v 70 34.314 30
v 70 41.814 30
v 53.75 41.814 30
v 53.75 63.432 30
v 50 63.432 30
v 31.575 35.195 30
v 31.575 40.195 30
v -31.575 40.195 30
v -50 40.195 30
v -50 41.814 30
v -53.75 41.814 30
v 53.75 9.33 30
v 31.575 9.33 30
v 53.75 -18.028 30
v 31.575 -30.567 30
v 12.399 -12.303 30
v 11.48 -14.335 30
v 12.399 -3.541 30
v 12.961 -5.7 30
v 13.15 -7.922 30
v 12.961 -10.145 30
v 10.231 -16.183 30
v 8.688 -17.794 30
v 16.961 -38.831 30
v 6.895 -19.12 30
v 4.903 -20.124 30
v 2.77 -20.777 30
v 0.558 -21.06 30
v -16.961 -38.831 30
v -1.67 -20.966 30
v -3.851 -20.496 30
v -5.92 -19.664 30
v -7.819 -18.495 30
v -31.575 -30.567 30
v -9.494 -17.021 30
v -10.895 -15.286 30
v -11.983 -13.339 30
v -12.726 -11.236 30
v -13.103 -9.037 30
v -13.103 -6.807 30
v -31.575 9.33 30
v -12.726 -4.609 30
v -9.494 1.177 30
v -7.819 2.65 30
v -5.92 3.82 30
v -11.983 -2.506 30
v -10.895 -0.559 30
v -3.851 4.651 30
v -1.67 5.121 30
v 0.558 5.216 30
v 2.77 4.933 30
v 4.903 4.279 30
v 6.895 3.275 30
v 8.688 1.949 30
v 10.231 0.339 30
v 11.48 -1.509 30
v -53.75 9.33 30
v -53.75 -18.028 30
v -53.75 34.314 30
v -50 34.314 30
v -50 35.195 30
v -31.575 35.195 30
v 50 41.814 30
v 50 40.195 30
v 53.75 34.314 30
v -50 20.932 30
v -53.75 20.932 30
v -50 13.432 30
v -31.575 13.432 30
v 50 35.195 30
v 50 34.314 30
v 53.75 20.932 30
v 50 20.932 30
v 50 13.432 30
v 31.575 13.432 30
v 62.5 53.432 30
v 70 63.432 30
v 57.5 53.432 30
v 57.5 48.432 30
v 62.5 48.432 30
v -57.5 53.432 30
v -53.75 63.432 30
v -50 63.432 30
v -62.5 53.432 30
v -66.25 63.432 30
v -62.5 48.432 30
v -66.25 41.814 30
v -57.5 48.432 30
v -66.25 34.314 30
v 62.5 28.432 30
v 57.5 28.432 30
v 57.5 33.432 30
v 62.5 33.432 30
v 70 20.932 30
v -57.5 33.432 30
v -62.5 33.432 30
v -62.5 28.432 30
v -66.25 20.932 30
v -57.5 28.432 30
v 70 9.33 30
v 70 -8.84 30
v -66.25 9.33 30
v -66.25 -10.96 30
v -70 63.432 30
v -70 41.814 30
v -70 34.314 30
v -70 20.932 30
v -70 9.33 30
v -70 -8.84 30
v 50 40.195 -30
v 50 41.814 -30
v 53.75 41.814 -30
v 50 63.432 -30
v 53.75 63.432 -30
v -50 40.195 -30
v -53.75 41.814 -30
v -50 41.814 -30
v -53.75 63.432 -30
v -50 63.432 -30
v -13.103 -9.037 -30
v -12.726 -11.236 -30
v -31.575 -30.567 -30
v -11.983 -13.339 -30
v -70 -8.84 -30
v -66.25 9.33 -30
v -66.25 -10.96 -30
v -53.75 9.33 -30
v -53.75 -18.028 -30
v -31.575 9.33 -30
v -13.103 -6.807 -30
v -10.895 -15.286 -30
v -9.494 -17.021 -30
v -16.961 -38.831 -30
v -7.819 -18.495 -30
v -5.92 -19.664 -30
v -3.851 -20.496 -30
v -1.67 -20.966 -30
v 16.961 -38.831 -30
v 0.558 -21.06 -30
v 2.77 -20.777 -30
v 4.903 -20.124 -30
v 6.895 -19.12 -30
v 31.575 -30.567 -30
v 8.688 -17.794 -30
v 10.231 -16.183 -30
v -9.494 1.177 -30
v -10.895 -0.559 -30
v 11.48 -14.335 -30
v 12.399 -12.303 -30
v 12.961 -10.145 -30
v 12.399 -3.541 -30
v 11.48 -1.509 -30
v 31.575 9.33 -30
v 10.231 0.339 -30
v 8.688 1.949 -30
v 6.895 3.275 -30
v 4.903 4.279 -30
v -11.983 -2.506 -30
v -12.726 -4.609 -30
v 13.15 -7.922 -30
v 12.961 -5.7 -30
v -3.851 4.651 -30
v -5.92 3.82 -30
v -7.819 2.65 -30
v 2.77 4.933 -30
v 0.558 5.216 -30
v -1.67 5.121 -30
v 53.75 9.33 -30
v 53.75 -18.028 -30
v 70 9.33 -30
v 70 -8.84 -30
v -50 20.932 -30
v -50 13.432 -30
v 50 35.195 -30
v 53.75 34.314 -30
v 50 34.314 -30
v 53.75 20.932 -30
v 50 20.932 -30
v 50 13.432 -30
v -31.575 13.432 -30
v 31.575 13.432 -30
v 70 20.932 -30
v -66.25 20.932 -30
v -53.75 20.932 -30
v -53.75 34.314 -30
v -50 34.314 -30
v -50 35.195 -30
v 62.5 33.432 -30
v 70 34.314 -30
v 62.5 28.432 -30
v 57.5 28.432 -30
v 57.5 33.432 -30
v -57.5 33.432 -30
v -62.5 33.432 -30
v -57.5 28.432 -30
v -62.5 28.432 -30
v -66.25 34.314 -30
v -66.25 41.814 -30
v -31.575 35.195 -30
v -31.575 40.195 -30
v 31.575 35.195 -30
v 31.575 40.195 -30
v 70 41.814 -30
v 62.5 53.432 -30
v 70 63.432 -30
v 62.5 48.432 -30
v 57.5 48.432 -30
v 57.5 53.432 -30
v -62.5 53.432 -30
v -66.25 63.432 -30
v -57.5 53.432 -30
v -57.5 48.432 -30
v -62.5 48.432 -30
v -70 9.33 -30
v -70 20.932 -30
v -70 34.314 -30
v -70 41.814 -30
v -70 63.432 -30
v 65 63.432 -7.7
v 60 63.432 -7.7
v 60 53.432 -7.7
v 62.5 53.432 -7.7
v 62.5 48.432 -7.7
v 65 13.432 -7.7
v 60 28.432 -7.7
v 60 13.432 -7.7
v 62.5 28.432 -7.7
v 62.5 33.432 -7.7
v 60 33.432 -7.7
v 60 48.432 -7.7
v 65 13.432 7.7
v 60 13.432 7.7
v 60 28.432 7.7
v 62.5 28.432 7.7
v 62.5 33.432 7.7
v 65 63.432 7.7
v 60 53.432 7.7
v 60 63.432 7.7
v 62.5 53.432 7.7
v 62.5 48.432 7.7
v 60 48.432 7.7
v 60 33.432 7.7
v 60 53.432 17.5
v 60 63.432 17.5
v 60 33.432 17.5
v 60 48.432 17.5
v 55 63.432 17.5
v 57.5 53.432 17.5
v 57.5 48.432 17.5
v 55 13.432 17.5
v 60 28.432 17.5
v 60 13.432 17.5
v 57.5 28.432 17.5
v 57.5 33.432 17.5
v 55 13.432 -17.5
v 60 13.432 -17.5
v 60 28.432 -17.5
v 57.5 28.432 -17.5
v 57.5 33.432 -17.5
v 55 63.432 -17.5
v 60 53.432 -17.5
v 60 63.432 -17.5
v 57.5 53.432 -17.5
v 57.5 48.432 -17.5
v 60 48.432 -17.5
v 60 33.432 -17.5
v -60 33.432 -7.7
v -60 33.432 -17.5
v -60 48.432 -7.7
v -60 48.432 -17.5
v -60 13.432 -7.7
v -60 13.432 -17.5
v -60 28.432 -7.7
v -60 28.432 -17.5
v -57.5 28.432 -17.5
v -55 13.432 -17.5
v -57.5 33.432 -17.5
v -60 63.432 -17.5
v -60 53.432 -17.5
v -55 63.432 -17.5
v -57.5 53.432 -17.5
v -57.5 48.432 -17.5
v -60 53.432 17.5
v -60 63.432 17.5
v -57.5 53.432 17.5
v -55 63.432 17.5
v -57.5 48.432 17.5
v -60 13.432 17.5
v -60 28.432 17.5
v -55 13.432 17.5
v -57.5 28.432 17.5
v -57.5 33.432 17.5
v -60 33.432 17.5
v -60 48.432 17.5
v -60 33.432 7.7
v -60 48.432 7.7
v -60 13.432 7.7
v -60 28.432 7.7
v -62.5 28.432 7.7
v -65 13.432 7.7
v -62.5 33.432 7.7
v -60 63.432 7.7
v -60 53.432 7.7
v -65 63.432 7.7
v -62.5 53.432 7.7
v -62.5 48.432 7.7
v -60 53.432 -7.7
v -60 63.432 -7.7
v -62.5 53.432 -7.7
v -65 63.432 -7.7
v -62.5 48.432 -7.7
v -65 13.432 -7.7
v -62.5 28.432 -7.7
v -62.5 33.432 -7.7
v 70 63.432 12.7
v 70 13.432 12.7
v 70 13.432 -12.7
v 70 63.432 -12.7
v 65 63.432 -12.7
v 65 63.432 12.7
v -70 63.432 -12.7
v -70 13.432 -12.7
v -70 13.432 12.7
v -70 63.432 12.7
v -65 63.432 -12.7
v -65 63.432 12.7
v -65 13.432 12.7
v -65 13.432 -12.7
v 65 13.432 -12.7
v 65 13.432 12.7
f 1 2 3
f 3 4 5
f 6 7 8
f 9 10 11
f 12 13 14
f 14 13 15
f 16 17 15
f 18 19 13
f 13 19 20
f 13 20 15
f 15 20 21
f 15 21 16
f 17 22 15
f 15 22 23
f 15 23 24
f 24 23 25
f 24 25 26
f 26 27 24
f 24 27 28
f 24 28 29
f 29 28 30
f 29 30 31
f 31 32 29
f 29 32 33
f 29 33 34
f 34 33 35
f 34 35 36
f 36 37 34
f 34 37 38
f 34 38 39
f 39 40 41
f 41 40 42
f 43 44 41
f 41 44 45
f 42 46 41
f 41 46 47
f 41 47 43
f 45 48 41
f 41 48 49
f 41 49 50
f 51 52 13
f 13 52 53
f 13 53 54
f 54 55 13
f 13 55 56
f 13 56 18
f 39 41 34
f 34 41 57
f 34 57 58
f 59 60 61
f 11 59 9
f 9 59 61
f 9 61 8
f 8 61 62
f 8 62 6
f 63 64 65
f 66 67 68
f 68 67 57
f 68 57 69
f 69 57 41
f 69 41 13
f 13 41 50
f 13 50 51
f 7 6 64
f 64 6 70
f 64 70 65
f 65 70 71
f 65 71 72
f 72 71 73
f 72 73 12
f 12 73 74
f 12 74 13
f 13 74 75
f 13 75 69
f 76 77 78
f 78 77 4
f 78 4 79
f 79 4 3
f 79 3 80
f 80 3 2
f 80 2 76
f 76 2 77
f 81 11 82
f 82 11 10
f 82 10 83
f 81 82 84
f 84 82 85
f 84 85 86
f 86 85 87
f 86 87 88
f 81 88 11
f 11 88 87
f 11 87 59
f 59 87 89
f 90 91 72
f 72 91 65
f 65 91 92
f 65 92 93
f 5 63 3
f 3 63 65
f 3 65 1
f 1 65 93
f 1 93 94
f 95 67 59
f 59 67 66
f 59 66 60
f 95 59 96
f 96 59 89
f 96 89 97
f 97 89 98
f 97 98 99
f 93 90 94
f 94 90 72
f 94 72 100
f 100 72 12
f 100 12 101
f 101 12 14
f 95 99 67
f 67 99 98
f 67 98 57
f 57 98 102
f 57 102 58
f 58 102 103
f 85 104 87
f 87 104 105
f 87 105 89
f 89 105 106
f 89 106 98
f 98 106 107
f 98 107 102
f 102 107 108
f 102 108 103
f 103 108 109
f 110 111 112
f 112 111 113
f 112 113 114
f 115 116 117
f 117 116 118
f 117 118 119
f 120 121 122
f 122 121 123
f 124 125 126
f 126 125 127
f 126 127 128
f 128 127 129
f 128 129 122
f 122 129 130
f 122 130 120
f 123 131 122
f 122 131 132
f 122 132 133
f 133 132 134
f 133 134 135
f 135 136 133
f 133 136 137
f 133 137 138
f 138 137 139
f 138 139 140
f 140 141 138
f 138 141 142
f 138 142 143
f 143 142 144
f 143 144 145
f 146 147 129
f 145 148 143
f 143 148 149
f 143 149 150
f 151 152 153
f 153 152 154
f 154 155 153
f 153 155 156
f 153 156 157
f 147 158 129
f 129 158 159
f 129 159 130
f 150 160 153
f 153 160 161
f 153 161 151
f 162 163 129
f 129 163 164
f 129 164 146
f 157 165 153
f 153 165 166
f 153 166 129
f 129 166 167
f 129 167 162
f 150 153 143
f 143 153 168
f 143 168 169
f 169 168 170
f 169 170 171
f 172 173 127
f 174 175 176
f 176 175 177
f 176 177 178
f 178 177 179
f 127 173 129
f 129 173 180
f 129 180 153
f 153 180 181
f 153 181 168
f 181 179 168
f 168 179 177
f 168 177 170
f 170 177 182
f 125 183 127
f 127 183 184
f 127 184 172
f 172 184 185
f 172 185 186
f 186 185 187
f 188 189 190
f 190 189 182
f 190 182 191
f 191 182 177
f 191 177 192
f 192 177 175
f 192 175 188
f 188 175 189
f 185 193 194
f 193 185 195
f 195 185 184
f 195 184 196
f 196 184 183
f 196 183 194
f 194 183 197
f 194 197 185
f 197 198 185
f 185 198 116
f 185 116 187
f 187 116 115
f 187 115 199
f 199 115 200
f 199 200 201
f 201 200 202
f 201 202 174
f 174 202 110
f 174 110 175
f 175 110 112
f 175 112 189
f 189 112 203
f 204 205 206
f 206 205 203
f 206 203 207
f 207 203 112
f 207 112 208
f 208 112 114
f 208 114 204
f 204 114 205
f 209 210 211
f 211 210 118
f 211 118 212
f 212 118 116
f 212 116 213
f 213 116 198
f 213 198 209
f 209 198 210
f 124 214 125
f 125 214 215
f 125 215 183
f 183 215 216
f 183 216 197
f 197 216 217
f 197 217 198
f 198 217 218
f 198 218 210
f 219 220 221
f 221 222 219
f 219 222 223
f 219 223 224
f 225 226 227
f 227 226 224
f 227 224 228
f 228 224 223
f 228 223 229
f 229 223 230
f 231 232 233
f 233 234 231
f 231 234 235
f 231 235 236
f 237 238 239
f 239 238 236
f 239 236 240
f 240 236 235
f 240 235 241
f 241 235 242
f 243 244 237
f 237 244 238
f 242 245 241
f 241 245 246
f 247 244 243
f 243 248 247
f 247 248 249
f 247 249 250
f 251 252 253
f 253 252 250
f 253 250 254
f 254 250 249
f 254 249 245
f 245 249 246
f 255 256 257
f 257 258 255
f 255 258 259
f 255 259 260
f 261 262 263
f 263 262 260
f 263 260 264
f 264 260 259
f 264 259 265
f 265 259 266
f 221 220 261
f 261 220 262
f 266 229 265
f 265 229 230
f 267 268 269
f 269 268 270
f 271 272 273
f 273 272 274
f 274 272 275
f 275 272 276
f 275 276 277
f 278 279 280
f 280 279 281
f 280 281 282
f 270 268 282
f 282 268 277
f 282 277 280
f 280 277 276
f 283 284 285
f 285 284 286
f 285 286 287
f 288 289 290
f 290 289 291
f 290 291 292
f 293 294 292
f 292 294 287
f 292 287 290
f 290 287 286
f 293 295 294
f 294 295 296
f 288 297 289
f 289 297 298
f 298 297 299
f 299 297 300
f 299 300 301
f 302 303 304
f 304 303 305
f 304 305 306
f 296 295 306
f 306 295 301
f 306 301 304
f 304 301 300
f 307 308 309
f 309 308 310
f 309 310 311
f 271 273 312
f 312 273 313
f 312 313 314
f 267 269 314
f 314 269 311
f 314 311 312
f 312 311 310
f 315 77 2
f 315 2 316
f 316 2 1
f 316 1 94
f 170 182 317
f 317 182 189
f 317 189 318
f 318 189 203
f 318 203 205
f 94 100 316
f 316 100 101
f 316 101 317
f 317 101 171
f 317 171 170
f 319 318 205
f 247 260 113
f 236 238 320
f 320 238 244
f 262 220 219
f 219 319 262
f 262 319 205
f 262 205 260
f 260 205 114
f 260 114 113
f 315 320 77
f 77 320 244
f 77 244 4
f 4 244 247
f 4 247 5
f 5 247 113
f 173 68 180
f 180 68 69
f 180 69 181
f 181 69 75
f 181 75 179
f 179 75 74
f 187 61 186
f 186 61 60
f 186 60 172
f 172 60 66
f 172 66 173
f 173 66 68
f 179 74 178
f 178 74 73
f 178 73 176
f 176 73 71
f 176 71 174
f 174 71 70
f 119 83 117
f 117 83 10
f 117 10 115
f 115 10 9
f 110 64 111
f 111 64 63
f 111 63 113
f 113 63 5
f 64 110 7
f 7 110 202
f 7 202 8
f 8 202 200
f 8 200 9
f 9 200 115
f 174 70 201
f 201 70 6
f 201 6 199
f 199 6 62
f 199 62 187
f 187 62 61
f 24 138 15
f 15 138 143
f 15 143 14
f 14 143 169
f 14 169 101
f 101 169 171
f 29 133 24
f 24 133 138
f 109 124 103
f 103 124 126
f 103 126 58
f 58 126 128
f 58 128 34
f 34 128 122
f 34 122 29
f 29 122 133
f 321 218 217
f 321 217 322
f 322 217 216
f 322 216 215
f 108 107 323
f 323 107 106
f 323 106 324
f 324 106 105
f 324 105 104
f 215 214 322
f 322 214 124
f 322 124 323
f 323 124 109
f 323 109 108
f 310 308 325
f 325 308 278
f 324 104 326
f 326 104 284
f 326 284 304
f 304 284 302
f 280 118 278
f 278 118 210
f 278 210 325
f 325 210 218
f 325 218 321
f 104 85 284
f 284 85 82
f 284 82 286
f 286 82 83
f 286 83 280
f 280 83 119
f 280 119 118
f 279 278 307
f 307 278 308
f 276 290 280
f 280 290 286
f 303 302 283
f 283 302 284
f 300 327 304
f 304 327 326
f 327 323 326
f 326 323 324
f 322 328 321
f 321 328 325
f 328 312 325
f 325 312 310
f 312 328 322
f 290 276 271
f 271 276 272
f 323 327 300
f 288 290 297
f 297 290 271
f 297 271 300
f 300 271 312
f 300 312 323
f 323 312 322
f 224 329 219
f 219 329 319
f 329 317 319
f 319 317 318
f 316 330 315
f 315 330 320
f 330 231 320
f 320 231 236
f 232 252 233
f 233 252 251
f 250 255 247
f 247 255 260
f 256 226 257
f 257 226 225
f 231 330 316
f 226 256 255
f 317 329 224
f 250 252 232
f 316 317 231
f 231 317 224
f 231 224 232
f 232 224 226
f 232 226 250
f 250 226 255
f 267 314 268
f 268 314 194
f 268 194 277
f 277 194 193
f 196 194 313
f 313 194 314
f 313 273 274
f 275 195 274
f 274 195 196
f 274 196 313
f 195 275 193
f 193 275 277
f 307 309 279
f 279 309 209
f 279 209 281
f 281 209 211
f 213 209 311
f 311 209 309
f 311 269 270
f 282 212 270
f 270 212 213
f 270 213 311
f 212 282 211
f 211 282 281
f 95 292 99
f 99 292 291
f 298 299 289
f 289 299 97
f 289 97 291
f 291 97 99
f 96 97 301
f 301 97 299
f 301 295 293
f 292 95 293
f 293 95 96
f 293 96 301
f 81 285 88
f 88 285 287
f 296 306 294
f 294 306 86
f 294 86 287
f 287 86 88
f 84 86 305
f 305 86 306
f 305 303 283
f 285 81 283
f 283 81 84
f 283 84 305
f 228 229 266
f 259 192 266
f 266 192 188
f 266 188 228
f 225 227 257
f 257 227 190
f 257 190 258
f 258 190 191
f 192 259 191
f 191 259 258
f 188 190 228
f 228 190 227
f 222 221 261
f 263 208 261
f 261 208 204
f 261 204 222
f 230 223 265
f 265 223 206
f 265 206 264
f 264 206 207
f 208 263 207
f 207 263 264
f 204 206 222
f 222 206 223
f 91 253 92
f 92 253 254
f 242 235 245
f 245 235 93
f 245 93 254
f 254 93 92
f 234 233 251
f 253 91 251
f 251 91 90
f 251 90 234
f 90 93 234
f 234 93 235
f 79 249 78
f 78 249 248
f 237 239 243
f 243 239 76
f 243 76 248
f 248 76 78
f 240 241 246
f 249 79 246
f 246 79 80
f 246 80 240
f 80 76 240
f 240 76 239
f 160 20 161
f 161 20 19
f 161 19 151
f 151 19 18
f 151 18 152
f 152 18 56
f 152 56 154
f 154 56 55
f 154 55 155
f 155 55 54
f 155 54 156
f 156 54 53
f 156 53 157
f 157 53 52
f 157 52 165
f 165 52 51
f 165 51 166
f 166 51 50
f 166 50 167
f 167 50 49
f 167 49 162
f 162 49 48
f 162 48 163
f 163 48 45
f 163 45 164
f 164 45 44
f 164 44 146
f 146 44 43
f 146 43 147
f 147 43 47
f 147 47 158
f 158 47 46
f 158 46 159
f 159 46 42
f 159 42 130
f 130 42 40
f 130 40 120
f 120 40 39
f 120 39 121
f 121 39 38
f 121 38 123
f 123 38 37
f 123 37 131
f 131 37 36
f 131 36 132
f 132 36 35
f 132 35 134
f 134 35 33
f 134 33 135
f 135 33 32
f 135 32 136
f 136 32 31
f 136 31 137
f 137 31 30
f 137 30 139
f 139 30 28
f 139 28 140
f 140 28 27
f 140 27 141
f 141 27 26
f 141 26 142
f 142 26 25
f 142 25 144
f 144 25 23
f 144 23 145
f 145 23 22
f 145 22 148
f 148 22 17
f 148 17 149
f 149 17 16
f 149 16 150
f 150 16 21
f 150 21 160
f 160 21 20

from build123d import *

# Parameters (mm, degrees)
BOSS_EXTRUDE2_DEPTH            = 30
BOSS_EXTRUDE2_DEPTH_BACK       = 30
EXTRUDE_THIN2_START            = -25
EXTRUDE_THIN2_DEPTH            = 50
SKETCH2_W                      = 60
SKETCH2_H                      = 5
BOSS_EXTRUDE3_DEPTH            = 100
BOSS_EXTRUDE4_DEPTH            = 30
BOSS_EXTRUDE4_DEPTH_BACK       = 30
CUT_EXTRUDE2_REACH             = 143.361
SKETCH4_W                      = 60
SKETCH4_H                      = 5
CUT_EXTRUDE2_DIRECTION_2_REACH = 143.361
BOSS_EXTRUDE5_DEPTH            = 30
BOSS_EXTRUDE5_DEPTH_BACK       = 30
DRONE_ARM_FIT_CUT_DEPTH        = 50
CUT_EXTRUDE3_START             = -60
SKETCH8_W                      = 5
SKETCH8_H                      = 5
CUT_EXTRUDE3_DEPTH             = 60
SKETCH10_R                     = 13.15
CUT_EXTRUDE5_DEPTH             = 60


# Read off the part's stored shape, not the designer's step: Extrude-Thin2
with BuildPart() as part:
    # Sketch1 → Boss-Extrude2 (new, two sides: drawn at the far end of the back side and taken through both)
    with BuildSketch(Plane.XY.offset(-BOSS_EXTRUDE2_DEPTH_BACK)):
        Polygon((-13.01396445, -23.830717844), (13.01396445, -23.830717844), (55, -0.089432632), (55, 13.432214294), (-55, 13.432214294), (-55, -0.089432632), align=None)
    extrude(amount=BOSS_EXTRUDE2_DEPTH + BOSS_EXTRUDE2_DEPTH_BACK)

    # Extrude-Thin2 outline → Extrude-Thin2 (add)
    with BuildSketch(Plane.XY.offset(EXTRUDE_THIN2_START)):
        Polygon((50, 13.432214294), (55, 13.432214294), (55, 68.432214294), (-55, 68.432214294), (-55, 13.432214294), (-50, 13.432214294), (-50, 63.432214294), (50, 63.432214294), align=None)
    extrude(amount=EXTRUDE_THIN2_DEPTH)

    # Sketch2 → Boss-Extrude3 (add)
    with BuildSketch(Plane.ZY.offset(-50)):
        with Locations((0, 37.694873029)):
            Rectangle(SKETCH2_W, SKETCH2_H)
    extrude(amount=BOSS_EXTRUDE3_DEPTH)

    # Sketch1<6> → Boss-Extrude4 (add, two sides: drawn at the far end of the back side and taken through both)
    with BuildSketch(Plane.XY.offset(-BOSS_EXTRUDE4_DEPTH_BACK)):
        Polygon((-55, -0.089432632), (-55, 13.432214294), (-70, 13.432214294), (-70, -8.839581066), (-16.961214453, -38.830717844), (16.961214453, -38.830717844), (70, -8.839581066), (70, 13.432214294), (55, 13.432214294), (55, -0.089432632), (13.01396445, -23.830717844), (-13.01396445, -23.830717844), align=None)
    extrude(amount=BOSS_EXTRUDE4_DEPTH + BOSS_EXTRUDE4_DEPTH_BACK)

    # Cut-Extrude2: up to this face of the body (flat: up to its plane)
    cut_extrude2_end = Plane(part.part.faces().sort_by_distance((-55, 40.932214294, 0))[0])
    # Sketch4 → Cut-Extrude2 (cut, up to the picked face)
    with BuildSketch(Plane(origin=(-50, 0, 0), x_dir=(0, 0, -1), z_dir=(1, 0, 0)), mode=Mode.PRIVATE) as cut_extrude2_sk1:
        with Locations((0, 65.932214294)):
            Rectangle(SKETCH4_W, SKETCH4_H)
    cut_extrude2_tool1 = split(extrude(cut_extrude2_sk1.sketch, amount=-CUT_EXTRUDE2_REACH, mode=Mode.PRIVATE), bisect_by=cut_extrude2_end, keep=Keep.BOTH, mode=Mode.PRIVATE)
    add(cut_extrude2_tool1.solids().sort_by(Axis((-50, 65.932214, 0), (-1, 0, 0)))[0], mode=Mode.SUBTRACT)

    # Cut-Extrude2 direction 2: up to this face of the body (flat: up to its plane)
    cut_extrude2_direction_2_end = Plane(part.part.faces().sort_by_distance((55, 40.932214294, 0))[0])
    # Sketch4 → Cut-Extrude2 direction 2 (cut, up to the picked face)
    with BuildSketch(Plane(origin=(-50, 0, 0), x_dir=(0, 0, -1), z_dir=(1, 0, 0)), mode=Mode.PRIVATE) as cut_extrude2_direction_2_sk1:
        with Locations((0, 65.932214294)):
            Rectangle(SKETCH4_W, SKETCH4_H)
    cut_extrude2_direction_2_tool1 = split(extrude(cut_extrude2_direction_2_sk1.sketch, amount=CUT_EXTRUDE2_DIRECTION_2_REACH, mode=Mode.PRIVATE), bisect_by=cut_extrude2_direction_2_end, keep=Keep.BOTH, mode=Mode.PRIVATE)
    add(cut_extrude2_direction_2_tool1.solids().sort_by(Axis((-50, 65.932214, 0), (1, 0, 0)))[0], mode=Mode.SUBTRACT)

    # Sketch1<7> → Boss-Extrude5 (add, two sides: drawn at the far end of the back side and taken through both)
    with BuildSketch(Plane.XY.offset(-BOSS_EXTRUDE5_DEPTH_BACK)):
        Polygon((-70, 13.432214294), (-55, 13.432214294), (-50, 13.432214294), (-50, 38.432214294), (-50, 63.432214294), (-70, 63.432214294), (-70, 38.432214294), align=None)
        Polygon((50, 38.432214294), (50, 13.432214294), (55, 13.432214294), (70, 13.432214294), (70, 38.432214294), (70, 63.432214294), (50, 63.432214294), align=None)
    extrude(amount=BOSS_EXTRUDE5_DEPTH + BOSS_EXTRUDE5_DEPTH_BACK)

    # Sketch7 → Drone Arm fit cut (cut)
    with BuildSketch(Plane(origin=(0, 63.432214294, 0), x_dir=(1, 0, 0), z_dir=(0, 1, 0))):
        Polygon((-70, -12.7), (-70, 12.7), (-65, 12.7), (-65, 7.7), (-60, 7.7), (-60, 12.7), (-60, 17.5), (-55, 17.5), (-55, -17.5), (-60, -17.5), (-60, -12.7), (-60, -7.7), (-65, -7.7), (-65, -12.7), align=None)
    drone_arm_fit_cut = extrude(amount=-DRONE_ARM_FIT_CUT_DEPTH, mode=Mode.SUBTRACT)

    # Mirror Drone arm fit cut: Drone Arm fit cut across plane
    add(drone_arm_fit_cut.mirror(Plane(origin=(0, 0, 0), x_dir=(0, 0, 1), z_dir=(1, 0, 0))), mode=Mode.SUBTRACT)

    # Sketch8 → Cut-Extrude3 (cut)
    with BuildSketch(Plane.XY.offset(30).offset(CUT_EXTRUDE3_START)):
        with Locations((-60, 50.932214294)):
            Rectangle(SKETCH8_W, SKETCH8_H)
        with Locations((-60, 30.932214294)):
            Rectangle(SKETCH8_W, SKETCH8_H)
    cut_extrude3 = extrude(amount=CUT_EXTRUDE3_DEPTH, mode=Mode.SUBTRACT)

    # Mirror1: Cut-Extrude3 across plane
    add(cut_extrude3.mirror(Plane(origin=(0, 0, 0), x_dir=(0, 0, 1), z_dir=(1, 0, 0))), mode=Mode.SUBTRACT)

    # Sketch10 → Cut-Extrude5 (cut)
    with BuildSketch(Plane.XY.offset(30)):
        with Locations((0, -7.922241987)):
            Circle(SKETCH10_R)
    extrude(amount=-CUT_EXTRUDE5_DEPTH, mode=Mode.SUBTRACT)


solid = part.part
